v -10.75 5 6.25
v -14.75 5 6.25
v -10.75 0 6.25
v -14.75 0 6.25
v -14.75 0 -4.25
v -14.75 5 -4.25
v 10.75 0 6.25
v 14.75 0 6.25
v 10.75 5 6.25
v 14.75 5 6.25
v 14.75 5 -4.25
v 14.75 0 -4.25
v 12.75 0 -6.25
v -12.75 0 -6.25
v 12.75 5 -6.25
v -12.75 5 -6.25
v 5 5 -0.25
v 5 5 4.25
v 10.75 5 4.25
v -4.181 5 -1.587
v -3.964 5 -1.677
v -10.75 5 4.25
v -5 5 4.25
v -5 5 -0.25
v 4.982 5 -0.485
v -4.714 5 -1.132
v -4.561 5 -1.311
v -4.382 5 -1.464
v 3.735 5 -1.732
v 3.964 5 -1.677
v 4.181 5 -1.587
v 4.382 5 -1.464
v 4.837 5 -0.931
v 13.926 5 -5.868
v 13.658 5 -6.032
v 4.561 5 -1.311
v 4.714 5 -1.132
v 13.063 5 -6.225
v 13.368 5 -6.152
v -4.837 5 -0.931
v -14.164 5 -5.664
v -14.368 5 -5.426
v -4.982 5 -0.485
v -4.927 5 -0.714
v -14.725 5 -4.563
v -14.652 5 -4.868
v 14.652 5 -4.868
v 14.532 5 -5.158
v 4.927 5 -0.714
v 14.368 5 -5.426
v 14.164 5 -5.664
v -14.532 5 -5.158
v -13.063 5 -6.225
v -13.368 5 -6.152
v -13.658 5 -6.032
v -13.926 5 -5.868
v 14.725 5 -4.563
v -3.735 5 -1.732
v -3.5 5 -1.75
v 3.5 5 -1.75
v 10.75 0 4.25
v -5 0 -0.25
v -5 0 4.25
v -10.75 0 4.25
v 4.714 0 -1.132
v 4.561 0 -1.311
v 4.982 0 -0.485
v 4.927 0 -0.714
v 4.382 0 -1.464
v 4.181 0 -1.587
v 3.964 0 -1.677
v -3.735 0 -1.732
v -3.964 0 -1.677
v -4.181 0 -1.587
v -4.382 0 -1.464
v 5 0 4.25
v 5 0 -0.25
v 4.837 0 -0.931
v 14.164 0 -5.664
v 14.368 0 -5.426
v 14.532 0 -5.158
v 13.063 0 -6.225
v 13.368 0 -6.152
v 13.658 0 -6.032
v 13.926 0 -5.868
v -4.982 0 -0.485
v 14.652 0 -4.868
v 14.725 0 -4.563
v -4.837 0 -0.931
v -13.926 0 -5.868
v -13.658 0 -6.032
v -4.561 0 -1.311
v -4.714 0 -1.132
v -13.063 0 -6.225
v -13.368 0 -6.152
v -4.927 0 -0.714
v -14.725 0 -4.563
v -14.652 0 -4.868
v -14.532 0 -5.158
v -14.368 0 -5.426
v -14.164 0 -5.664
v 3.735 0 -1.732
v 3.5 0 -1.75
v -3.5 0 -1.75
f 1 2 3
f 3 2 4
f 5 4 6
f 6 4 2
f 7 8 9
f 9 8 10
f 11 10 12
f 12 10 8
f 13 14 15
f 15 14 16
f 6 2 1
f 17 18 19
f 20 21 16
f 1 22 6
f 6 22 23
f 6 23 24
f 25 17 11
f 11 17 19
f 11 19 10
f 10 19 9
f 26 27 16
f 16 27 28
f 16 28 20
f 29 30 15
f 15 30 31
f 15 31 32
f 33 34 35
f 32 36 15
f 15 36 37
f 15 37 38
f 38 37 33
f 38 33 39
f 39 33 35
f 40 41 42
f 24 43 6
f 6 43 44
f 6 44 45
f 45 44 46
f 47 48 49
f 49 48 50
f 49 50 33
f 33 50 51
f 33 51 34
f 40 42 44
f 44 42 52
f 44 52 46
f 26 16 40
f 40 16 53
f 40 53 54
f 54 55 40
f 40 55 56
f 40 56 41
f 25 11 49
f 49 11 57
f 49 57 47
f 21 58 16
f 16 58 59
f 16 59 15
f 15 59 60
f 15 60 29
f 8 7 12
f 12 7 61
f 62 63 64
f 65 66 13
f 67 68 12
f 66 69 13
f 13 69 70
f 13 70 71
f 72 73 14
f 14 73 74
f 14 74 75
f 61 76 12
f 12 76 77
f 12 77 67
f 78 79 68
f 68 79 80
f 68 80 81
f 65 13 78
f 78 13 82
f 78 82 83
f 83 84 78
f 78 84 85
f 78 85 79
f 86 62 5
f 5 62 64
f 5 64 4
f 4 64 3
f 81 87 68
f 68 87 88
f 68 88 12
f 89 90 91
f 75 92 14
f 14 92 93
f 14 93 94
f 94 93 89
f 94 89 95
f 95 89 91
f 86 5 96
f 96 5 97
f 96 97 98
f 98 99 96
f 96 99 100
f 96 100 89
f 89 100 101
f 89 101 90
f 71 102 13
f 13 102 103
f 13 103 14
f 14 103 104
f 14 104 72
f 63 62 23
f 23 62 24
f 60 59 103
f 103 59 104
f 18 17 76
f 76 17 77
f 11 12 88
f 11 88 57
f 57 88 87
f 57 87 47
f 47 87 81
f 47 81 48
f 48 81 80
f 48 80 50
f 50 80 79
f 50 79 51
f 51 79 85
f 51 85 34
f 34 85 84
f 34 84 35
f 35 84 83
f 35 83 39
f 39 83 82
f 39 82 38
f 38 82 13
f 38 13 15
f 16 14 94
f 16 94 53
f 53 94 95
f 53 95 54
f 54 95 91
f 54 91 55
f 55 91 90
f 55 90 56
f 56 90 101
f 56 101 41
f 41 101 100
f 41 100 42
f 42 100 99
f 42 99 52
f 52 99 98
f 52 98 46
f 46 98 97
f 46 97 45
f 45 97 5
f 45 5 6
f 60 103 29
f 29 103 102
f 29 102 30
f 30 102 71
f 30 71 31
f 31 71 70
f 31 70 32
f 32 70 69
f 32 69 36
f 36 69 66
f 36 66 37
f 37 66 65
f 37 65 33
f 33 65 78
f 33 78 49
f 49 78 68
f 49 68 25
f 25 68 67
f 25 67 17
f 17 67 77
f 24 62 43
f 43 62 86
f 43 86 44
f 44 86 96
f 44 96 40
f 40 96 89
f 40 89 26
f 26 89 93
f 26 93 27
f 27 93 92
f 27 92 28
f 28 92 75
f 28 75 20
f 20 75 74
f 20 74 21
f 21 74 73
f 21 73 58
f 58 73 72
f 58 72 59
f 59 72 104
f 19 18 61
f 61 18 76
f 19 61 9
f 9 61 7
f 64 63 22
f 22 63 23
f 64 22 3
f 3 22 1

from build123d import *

# Parameters (mm, degrees)
SKETCH1_W           = 29.5
SKETCH1_H           = 12.5
BOSS_EXTRUDE1_DEPTH = 5
SKETCH2_W           = 10
SKETCH2_H           = 8
CUT_EXTRUDE1_DEPTH  = 6
FILLET1_R           = 2
FILLET2_R           = 1.5
SKETCH3_W           = 21.5
SKETCH3_H           = 5
CUT_EXTRUDE2_DEPTH  = 2


with BuildPart() as part:
    # Sketch1 → Boss-Extrude1 (new body)
    with BuildSketch(Plane(origin=(0, 0, 0), x_dir=(1, 0, 0), z_dir=(0, 1, 0))):
        Rectangle(SKETCH1_W, SKETCH1_H)
    extrude(amount=BOSS_EXTRUDE1_DEPTH)

    # Sketch2 → Cut-Extrude1 (cut, through all)
    with BuildSketch(Plane(origin=(0, 5, 0), x_dir=(1, 0, 0), z_dir=(0, 1, 0))):
        with Locations((0, -2.25)):
            Rectangle(SKETCH2_W, SKETCH2_H)
    extrude(amount=-CUT_EXTRUDE1_DEPTH, mode=Mode.SUBTRACT)

    # Fillet1
    fillet1_edges = [part.edges().sort_by_distance(p)[0] for p in [
        (-14.75, 2.5, -6.25),
        (14.75, 2.5, -6.25),
    ]]
    fillet(fillet1_edges, radius=FILLET1_R)

    # Fillet2
    fillet2_edges = [part.edges().sort_by_distance(p)[0] for p in [
        (-5, 2.5, -1.75),
        (5, 2.5, -1.75),
    ]]
    fillet(fillet2_edges, radius=FILLET2_R)

    # Sketch3 → Cut-Extrude2 (cut)
    with BuildSketch(Plane.XY.offset(6.25)):
        with Locations((0, 2.5)):
            Rectangle(SKETCH3_W, SKETCH3_H)
    extrude(amount=-CUT_EXTRUDE2_DEPTH, mode=Mode.SUBTRACT)


solid = part.part
